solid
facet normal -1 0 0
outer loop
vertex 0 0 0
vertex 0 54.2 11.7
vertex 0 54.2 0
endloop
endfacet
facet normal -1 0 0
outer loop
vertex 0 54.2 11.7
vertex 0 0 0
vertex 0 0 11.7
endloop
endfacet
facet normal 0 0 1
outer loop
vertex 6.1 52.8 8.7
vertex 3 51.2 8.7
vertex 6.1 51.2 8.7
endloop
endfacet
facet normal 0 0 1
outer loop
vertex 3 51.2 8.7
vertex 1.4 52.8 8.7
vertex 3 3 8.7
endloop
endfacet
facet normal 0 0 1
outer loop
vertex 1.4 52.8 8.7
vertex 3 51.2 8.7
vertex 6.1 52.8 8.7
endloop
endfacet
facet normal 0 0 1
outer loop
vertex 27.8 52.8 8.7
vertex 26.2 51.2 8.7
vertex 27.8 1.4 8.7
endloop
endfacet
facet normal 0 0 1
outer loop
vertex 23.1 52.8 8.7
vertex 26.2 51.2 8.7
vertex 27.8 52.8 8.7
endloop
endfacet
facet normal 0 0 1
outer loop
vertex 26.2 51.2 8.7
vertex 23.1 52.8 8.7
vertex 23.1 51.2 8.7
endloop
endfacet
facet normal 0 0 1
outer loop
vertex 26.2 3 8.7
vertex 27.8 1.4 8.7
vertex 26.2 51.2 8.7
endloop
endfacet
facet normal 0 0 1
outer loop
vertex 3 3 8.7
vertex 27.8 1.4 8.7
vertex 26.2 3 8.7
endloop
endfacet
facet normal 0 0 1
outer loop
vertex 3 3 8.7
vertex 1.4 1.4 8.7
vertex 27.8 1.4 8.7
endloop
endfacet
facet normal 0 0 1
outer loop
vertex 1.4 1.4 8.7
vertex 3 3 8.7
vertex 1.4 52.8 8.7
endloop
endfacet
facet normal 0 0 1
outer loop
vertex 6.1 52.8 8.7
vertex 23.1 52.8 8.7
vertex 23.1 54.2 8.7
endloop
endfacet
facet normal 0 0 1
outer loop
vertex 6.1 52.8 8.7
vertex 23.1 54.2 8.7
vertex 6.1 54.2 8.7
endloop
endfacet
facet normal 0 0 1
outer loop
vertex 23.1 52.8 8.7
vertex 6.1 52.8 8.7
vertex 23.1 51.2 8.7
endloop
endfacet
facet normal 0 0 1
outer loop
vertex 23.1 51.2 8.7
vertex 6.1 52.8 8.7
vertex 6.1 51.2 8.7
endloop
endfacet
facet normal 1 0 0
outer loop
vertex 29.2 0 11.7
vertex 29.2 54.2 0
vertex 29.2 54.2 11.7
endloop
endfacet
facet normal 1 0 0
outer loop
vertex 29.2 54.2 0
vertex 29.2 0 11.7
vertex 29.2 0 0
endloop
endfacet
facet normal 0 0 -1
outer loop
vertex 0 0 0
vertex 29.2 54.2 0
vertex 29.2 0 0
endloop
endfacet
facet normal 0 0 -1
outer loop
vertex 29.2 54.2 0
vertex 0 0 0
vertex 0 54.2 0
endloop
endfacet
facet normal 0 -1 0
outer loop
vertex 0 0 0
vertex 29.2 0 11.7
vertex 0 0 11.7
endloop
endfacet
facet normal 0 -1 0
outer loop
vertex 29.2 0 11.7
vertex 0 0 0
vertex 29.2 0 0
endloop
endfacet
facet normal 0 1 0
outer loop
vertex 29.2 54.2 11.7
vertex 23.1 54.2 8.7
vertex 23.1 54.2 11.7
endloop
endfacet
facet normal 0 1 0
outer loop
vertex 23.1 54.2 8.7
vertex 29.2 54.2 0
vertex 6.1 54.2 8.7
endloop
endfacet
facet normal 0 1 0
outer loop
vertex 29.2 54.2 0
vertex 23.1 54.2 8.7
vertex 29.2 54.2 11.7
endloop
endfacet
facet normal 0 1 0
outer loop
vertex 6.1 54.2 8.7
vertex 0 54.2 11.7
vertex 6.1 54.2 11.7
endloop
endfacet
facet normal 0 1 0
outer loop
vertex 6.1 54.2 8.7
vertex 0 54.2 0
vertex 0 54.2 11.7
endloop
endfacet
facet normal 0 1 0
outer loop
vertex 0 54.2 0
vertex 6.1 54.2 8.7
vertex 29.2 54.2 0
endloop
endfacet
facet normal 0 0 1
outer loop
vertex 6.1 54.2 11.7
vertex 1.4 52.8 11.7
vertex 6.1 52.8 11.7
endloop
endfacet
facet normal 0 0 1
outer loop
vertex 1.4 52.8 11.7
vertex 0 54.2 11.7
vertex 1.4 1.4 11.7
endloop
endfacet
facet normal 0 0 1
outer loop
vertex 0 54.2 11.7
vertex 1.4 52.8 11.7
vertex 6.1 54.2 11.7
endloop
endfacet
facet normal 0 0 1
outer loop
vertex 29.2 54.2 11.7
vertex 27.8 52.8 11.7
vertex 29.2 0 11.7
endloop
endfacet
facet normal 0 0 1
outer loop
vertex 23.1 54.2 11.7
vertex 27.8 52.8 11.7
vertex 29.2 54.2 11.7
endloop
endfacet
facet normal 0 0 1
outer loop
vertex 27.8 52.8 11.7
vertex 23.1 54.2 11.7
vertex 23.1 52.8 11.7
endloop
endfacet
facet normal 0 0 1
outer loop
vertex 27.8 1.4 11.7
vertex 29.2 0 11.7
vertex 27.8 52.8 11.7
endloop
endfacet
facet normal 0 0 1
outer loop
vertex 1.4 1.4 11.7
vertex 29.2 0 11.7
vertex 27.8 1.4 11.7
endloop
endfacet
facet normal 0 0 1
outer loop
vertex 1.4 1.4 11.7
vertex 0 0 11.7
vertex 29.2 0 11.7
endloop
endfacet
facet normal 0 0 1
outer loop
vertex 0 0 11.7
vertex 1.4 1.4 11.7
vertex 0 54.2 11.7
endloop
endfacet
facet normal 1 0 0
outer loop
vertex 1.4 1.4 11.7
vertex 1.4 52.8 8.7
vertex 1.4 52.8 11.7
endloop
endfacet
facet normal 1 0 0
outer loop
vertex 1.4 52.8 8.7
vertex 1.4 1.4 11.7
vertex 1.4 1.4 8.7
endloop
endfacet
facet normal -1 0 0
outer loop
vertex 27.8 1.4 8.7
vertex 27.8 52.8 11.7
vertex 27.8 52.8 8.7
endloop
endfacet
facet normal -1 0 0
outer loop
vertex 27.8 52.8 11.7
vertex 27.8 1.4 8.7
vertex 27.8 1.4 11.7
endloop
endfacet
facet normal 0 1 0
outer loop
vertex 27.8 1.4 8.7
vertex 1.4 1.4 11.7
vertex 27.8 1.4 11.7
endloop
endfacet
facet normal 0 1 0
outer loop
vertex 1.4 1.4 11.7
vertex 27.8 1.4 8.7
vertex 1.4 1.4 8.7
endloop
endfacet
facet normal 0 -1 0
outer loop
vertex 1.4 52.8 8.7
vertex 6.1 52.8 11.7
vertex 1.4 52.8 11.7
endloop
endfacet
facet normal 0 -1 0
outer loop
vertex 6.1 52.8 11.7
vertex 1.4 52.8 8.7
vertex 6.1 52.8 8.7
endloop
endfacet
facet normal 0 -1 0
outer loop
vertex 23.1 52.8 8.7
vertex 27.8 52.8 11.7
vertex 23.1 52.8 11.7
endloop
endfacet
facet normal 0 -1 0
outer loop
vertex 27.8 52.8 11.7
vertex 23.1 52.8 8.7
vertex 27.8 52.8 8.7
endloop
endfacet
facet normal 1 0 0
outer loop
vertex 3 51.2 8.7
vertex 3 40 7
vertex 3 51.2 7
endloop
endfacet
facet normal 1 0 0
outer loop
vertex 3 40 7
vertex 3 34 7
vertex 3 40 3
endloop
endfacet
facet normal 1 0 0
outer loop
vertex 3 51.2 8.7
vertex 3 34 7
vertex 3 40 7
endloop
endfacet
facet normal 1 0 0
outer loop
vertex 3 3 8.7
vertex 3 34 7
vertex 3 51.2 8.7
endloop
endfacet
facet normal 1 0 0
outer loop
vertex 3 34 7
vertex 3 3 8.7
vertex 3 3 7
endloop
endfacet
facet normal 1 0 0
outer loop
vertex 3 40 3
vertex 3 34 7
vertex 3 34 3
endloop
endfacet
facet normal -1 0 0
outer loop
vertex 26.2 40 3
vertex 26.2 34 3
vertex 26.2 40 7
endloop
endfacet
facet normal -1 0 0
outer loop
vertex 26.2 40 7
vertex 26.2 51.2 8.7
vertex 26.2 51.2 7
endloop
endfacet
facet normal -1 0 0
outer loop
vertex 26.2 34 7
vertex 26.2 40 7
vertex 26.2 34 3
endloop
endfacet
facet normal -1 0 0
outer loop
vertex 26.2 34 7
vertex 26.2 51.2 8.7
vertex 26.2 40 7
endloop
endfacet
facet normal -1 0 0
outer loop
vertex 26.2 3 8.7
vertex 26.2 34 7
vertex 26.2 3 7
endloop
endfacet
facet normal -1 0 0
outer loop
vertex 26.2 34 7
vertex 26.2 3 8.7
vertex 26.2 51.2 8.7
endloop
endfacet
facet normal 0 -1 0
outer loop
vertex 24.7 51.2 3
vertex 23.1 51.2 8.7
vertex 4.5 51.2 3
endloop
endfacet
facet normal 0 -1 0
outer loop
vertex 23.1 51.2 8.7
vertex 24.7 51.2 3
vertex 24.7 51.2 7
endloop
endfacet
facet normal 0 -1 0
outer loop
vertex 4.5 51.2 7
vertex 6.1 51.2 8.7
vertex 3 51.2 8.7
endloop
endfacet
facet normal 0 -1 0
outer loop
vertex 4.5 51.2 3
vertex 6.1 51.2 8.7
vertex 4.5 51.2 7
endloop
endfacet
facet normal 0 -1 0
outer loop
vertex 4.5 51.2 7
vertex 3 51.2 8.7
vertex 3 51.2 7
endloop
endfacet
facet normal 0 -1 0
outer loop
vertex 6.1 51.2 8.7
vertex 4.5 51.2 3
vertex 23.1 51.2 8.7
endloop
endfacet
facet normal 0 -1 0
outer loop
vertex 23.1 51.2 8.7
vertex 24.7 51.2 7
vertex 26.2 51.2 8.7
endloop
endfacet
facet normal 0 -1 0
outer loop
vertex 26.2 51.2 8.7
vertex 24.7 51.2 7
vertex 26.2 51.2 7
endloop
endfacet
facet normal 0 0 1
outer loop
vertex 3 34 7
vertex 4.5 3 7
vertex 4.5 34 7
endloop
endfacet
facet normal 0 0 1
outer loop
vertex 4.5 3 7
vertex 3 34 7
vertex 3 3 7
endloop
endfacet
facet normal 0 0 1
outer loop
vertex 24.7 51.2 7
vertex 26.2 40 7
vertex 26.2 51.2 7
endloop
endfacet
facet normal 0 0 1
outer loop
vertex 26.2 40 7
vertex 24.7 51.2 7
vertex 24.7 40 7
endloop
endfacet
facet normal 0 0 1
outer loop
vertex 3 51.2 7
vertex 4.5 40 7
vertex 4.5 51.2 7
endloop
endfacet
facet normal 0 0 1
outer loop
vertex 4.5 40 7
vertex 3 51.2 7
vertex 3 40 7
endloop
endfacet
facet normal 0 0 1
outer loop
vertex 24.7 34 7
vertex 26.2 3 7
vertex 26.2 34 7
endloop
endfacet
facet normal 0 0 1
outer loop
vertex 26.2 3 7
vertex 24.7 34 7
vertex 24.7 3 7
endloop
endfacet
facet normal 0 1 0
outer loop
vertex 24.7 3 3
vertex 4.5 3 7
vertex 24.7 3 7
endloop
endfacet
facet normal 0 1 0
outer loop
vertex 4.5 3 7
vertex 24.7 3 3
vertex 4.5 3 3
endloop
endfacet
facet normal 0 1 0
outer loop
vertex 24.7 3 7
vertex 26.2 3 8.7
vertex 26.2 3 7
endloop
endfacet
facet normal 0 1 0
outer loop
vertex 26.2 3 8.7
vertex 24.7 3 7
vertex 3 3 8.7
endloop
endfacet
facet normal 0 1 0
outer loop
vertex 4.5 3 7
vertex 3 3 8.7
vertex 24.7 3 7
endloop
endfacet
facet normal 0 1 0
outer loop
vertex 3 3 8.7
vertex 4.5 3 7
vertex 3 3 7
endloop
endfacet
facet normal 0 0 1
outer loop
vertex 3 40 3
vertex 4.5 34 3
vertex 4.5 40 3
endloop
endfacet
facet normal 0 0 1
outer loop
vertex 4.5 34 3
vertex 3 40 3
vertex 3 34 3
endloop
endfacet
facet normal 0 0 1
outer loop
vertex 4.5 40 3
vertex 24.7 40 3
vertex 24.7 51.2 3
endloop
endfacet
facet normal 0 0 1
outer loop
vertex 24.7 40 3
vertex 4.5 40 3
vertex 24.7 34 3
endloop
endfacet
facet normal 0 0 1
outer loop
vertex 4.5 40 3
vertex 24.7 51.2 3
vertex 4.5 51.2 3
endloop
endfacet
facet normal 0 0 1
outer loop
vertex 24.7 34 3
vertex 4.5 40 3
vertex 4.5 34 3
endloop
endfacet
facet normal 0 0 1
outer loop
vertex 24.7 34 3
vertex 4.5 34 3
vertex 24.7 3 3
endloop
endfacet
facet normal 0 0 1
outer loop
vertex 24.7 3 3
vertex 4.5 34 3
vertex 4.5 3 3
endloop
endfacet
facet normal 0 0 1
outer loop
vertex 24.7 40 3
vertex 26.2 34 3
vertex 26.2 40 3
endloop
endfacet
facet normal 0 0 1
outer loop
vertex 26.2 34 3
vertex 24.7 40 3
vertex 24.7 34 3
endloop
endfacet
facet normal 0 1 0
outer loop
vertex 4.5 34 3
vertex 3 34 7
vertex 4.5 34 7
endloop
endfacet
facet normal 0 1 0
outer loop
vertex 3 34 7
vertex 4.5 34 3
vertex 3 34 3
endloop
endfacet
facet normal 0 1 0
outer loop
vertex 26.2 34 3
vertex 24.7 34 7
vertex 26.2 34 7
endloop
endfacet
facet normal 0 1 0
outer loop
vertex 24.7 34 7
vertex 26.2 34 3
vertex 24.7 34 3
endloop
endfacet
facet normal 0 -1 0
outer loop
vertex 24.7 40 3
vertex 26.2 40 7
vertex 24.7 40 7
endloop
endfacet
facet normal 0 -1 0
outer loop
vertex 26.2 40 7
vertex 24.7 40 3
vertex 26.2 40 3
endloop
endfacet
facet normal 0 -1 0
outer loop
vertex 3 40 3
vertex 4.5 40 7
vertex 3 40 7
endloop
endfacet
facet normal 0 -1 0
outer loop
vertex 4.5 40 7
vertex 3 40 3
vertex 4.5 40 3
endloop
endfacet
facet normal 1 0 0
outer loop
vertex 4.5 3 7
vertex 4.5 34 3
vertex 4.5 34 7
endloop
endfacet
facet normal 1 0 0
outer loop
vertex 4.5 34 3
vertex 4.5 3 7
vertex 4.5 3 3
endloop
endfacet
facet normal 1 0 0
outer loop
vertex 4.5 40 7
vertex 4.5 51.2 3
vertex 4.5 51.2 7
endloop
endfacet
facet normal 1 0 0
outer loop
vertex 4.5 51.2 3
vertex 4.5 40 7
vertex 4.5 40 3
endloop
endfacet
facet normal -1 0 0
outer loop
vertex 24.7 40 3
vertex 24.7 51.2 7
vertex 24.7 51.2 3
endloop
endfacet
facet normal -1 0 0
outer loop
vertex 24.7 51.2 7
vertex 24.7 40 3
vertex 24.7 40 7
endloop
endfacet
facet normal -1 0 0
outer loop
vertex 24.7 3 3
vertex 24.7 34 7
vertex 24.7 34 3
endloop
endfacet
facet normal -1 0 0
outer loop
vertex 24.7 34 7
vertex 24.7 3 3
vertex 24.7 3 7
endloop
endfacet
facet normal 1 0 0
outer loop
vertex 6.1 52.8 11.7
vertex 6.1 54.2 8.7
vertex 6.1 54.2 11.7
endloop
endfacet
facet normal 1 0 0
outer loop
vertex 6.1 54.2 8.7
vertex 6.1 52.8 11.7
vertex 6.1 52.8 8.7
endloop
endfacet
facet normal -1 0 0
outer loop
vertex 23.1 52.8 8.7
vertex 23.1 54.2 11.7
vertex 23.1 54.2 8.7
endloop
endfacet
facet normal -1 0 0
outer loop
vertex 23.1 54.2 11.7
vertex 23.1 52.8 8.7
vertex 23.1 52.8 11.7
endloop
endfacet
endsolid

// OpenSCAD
// file: BaSHi-case-common.scad
$fn = $preview?6:360;

thick = 3;
tolerance = 0.1;

pcb_width = 23;

pcb_top = 15;
pcb_thick = 1.6;
pcb_bottom = 4;

cut_terminal_width = 17;

cut_top_pcb_offset = 31;
cut_top_pcb_height = 6;

pcb_border = 1.5;

box_inner_x = pcb_width + 2 * tolerance;
box_outer_x = box_inner_x + 2 * thick;

lip_width = thick / 2 - tolerance;
lip_height = 3;

// -------------------------------------------------------

b_box_inner_x_pcb = pcb_width - 2 * pcb_border + 2 * tolerance;

b_box_inner_z = pcb_bottom + pcb_thick + tolerance;
b_box_outer_z = b_box_inner_z + thick;

// --------------------------------------------------------

t_box_inner_z = pcb_top + tolerance - lip_height;
t_box_outer_z = t_box_inner_z + thick;

// --------------------------------------------------------

module case_top(pcb_height) {    
    box_inner_y = pcb_height + 2 * tolerance;
    box_outer_y = box_inner_y + 2 * thick;
    
    difference() {
        
        union() {
            // Initial box
            cube ([box_outer_x, box_outer_y, t_box_outer_z]);

            // Lip
            translate([thick - lip_width, thick - lip_width, t_box_outer_z])
                cube ([lip_width, box_outer_y - thick - lip_width, lip_height]);
            translate([box_outer_x - thick, thick - lip_width, t_box_outer_z])
                cube ([lip_width, box_outer_y - thick - lip_width, lip_height]);
            translate([thick - lip_width, thick - lip_width, t_box_outer_z])
                cube ([box_outer_x - 2 * thick  + 2 * lip_width, lip_width, lip_height]);
            translate([thick - lip_width, box_outer_y - thick, t_box_outer_z])
                cube ([box_outer_x - 2 * thick + 2 * lip_width, lip_width, lip_height]);
        }

        // Remove inner for pcb
        translate([box_outer_x/2 - b_box_inner_x_pcb/2, box_outer_y/2 - box_inner_y/2, thick])
            cube ([b_box_inner_x_pcb, box_inner_y, t_box_inner_z]);

        // Cutout inner for pcb
        translate([box_outer_x/2 - box_inner_x/2, thick + cut_top_pcb_offset, thick])
            cube ([box_inner_x, cut_top_pcb_height, t_box_inner_z]);

        // Remove Terminal        
        translate([box_outer_x/2 - cut_terminal_width/2, box_outer_y - thick, thick])
            cube ([cut_terminal_width, box_outer_y, t_box_inner_z + lip_height]);
    }
}

module case_bottom(pcb_height) {
    box_inner_y = pcb_height + 2 * tolerance;
    box_outer_y = box_inner_y + 2 * thick;
    
    difference() {
        
        union() {
            // Initial box
            cube ([box_outer_x, box_outer_y, b_box_outer_z]);
            
            // Lip
            translate([0, 0, b_box_outer_z])
                cube ([lip_width, box_outer_y, lip_height]);
            translate([box_outer_x - lip_width, 0, b_box_outer_z])
                cube ([lip_width, box_outer_y, lip_height]);
            translate([0, 0, b_box_outer_z])
                cube ([box_outer_x, lip_width, lip_height]);
            translate([0, box_outer_y - lip_width, b_box_outer_z])
                cube ([box_outer_x, lip_width, lip_height]);       
        }
        
        // Remove for pcb
        translate([box_outer_x/2 - box_inner_x/2, box_outer_y/2 - box_inner_y/2, b_box_outer_z - pcb_thick - tolerance])
            cube ([box_inner_x, box_inner_y, pcb_thick + tolerance]);

        // Cutout inner for pcb
        translate([box_outer_x/2 - box_inner_x/2, thick + cut_top_pcb_offset, thick])
            cube ([box_inner_x, cut_top_pcb_height, t_box_inner_z]);

        // Remove inner
        translate([box_outer_x/2 - b_box_inner_x_pcb/2, box_outer_y/2 - box_inner_y/2, thick])
            cube ([b_box_inner_x_pcb, box_inner_y, b_box_inner_z]);

        // Remove lip
        translate([box_outer_x/2 - cut_terminal_width/2, box_outer_y - thick, thick + b_box_inner_z])
            cube ([cut_terminal_width, box_outer_y, lip_height]);
        
        translate([box_outer_x/2 - b_box_inner_x_pcb/2, box_outer_y/2 - box_inner_y/2, thick])
            cube ([b_box_inner_x_pcb, box_inner_y, b_box_inner_z]);

    }
   
}
// main file
include <./BaSHi-case-common.scad>

// -------------------------------------------------------

case_bottom(48);
